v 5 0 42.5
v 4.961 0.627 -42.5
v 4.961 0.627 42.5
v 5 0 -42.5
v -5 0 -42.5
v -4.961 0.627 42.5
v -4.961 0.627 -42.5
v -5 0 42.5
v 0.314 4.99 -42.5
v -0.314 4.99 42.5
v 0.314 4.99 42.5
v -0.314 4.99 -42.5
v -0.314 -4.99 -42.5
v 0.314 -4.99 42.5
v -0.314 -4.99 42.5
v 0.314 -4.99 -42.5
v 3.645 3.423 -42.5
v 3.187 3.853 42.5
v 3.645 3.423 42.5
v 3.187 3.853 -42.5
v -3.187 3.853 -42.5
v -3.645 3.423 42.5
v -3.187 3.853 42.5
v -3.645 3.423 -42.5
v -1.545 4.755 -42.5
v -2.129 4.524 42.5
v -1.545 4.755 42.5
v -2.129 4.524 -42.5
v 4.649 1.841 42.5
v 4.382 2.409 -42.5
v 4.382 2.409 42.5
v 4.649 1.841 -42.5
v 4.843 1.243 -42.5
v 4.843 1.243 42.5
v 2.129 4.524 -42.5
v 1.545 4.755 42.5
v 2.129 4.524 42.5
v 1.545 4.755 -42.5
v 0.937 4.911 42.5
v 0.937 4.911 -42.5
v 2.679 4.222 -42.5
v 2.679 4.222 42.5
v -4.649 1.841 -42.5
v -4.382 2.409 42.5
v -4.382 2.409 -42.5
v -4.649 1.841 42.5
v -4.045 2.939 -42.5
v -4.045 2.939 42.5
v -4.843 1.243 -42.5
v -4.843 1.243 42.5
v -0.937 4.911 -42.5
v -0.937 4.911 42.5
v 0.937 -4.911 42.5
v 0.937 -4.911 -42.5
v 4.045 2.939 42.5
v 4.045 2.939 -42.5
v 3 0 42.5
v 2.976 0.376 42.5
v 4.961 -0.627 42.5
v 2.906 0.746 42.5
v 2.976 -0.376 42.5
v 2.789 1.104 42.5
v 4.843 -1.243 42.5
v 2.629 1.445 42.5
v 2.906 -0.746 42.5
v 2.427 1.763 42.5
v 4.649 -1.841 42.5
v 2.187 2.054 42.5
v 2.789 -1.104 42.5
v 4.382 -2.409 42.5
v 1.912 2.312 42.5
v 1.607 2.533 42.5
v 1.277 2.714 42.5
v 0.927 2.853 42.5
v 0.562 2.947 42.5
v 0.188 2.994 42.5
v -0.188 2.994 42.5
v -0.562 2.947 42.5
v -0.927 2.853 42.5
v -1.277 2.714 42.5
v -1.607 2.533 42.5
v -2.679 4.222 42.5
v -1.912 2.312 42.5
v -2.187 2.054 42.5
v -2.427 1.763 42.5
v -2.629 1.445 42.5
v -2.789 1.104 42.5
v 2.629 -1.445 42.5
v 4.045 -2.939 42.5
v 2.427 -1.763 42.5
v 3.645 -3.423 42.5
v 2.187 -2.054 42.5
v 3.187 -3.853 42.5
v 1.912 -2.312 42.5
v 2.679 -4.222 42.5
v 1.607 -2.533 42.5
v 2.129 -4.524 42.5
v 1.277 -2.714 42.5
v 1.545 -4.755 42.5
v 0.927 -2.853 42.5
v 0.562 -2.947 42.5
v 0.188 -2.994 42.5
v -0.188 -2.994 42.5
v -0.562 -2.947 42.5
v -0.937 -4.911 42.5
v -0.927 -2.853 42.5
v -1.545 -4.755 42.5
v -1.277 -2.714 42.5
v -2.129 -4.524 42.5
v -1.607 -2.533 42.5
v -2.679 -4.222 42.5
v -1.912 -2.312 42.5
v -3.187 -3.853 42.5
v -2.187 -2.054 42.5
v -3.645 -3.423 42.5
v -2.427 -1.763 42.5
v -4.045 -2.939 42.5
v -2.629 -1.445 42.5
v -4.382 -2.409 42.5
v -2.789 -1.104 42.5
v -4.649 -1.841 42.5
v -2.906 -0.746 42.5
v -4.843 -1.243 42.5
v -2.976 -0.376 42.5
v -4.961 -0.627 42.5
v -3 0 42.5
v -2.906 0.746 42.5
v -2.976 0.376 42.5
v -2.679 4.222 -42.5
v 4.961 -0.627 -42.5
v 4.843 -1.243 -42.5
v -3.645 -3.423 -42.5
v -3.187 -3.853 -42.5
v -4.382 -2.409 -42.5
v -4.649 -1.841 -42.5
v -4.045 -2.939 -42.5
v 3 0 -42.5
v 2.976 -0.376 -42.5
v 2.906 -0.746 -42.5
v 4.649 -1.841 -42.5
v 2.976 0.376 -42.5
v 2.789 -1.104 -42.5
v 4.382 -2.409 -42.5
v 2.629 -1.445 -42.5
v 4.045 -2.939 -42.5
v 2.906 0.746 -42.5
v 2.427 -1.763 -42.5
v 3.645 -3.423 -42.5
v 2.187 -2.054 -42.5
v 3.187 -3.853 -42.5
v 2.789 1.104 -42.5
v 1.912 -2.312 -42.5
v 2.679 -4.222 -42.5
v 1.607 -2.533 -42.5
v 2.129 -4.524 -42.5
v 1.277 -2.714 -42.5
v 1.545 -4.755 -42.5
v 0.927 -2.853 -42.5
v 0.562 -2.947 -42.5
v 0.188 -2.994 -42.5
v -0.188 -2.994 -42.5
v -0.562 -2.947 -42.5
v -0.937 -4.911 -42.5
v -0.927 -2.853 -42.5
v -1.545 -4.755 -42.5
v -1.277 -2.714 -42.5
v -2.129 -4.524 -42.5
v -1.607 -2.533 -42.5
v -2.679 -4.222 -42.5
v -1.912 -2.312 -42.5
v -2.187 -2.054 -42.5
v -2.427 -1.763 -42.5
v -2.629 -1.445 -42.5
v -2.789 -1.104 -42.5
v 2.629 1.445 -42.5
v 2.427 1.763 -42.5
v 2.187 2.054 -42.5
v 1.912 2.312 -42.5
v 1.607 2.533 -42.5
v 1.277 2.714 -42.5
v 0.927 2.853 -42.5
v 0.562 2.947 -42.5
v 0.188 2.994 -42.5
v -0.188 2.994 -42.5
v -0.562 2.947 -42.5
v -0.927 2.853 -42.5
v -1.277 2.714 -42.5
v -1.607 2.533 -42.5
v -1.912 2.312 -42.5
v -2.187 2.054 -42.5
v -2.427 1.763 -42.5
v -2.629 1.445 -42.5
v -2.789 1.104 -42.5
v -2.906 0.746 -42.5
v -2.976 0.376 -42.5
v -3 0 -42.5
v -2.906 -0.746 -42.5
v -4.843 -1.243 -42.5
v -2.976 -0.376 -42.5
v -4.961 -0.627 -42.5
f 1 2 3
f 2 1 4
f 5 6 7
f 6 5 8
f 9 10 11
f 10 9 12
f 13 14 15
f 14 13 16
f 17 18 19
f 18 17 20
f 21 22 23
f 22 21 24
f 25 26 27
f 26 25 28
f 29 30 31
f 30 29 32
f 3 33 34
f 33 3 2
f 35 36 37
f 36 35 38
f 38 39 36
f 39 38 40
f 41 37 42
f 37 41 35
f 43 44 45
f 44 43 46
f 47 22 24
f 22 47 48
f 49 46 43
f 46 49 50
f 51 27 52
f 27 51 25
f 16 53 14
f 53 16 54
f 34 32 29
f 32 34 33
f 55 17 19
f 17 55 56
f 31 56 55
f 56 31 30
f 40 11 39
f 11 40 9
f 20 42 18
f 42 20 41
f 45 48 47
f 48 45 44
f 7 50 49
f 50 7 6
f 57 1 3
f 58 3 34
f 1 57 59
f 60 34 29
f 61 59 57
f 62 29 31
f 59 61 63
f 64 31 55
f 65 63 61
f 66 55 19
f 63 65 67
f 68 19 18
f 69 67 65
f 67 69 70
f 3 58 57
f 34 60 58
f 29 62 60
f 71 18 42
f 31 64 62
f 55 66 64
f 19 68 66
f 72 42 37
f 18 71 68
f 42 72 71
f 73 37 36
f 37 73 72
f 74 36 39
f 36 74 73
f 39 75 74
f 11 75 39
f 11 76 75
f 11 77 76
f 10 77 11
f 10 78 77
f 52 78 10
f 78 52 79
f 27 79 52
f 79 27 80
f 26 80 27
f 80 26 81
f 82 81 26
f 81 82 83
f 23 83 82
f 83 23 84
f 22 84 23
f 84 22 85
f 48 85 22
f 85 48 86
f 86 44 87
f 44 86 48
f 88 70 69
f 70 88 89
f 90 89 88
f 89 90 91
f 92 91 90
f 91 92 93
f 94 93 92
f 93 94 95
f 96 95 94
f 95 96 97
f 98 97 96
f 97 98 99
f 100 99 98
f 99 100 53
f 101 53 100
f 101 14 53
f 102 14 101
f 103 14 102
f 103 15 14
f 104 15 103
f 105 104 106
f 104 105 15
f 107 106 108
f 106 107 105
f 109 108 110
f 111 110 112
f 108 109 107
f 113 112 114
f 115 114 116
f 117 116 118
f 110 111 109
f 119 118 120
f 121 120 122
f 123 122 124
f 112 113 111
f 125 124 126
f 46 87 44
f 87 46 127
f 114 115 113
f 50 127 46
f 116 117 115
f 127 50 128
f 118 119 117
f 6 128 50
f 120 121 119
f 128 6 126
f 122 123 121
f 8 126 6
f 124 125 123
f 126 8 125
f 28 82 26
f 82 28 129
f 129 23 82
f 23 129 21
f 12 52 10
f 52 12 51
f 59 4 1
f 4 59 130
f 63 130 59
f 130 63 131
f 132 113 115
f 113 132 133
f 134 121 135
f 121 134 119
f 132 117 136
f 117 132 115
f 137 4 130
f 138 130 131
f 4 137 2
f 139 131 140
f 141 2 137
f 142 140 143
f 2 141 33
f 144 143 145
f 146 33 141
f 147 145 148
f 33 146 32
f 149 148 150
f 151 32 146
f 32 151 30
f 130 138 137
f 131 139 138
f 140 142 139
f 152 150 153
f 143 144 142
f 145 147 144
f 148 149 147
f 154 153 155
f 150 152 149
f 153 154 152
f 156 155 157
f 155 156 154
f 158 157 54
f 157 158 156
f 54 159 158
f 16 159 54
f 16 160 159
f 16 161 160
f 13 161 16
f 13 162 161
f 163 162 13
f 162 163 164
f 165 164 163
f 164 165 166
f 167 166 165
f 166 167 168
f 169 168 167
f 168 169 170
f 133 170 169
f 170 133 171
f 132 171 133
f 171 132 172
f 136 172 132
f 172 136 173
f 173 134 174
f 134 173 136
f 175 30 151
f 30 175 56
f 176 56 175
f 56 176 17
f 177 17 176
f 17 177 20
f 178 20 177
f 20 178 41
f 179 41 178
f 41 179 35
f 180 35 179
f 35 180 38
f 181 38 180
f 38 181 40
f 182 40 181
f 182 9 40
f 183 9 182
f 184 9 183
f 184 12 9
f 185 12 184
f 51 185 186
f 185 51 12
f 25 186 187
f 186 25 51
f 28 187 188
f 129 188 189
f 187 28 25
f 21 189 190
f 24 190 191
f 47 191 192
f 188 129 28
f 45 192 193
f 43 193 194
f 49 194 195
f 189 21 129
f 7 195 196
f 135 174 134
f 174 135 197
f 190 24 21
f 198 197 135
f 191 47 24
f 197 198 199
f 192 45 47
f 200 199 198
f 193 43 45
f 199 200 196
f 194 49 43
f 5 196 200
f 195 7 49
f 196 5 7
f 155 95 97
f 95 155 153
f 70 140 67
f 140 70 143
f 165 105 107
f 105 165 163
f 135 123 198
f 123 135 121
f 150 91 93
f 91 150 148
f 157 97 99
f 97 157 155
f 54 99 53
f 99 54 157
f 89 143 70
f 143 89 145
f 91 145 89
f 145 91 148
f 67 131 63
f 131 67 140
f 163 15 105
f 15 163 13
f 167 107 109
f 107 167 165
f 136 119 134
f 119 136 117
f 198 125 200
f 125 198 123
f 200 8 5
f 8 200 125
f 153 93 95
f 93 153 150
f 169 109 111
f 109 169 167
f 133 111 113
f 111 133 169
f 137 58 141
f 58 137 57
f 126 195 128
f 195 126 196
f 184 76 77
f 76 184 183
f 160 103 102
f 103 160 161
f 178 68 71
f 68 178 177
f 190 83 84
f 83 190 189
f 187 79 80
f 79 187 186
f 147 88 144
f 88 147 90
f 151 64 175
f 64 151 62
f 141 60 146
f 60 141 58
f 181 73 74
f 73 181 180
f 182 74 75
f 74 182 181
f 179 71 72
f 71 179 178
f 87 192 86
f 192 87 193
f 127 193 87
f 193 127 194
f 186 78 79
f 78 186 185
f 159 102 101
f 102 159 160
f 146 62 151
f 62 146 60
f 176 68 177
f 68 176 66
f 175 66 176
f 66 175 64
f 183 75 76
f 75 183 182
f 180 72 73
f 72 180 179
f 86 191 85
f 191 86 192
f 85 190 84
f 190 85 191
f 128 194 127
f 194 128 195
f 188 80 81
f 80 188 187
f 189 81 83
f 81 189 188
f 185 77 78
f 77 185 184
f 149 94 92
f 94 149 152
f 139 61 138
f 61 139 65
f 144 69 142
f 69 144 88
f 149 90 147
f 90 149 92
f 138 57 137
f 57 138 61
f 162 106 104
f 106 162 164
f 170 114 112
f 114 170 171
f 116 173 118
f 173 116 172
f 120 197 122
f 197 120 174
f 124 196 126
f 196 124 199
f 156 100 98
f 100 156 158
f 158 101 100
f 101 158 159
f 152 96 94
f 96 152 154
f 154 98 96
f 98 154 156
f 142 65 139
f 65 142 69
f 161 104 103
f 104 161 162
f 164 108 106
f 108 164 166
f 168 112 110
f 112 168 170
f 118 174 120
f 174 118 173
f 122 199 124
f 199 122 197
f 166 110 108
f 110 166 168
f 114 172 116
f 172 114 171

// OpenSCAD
$fn = 50;


difference() {
	union() {
		translate(v = [0, 0, -42.5000000000]) {
			cylinder(h = 85, r = 5.0000000000);
		}
	}
	union() {
		translate(v = [0, 0, -100.0000000000]) {
			cylinder(h = 200, r = 3);
		}
	}
}
